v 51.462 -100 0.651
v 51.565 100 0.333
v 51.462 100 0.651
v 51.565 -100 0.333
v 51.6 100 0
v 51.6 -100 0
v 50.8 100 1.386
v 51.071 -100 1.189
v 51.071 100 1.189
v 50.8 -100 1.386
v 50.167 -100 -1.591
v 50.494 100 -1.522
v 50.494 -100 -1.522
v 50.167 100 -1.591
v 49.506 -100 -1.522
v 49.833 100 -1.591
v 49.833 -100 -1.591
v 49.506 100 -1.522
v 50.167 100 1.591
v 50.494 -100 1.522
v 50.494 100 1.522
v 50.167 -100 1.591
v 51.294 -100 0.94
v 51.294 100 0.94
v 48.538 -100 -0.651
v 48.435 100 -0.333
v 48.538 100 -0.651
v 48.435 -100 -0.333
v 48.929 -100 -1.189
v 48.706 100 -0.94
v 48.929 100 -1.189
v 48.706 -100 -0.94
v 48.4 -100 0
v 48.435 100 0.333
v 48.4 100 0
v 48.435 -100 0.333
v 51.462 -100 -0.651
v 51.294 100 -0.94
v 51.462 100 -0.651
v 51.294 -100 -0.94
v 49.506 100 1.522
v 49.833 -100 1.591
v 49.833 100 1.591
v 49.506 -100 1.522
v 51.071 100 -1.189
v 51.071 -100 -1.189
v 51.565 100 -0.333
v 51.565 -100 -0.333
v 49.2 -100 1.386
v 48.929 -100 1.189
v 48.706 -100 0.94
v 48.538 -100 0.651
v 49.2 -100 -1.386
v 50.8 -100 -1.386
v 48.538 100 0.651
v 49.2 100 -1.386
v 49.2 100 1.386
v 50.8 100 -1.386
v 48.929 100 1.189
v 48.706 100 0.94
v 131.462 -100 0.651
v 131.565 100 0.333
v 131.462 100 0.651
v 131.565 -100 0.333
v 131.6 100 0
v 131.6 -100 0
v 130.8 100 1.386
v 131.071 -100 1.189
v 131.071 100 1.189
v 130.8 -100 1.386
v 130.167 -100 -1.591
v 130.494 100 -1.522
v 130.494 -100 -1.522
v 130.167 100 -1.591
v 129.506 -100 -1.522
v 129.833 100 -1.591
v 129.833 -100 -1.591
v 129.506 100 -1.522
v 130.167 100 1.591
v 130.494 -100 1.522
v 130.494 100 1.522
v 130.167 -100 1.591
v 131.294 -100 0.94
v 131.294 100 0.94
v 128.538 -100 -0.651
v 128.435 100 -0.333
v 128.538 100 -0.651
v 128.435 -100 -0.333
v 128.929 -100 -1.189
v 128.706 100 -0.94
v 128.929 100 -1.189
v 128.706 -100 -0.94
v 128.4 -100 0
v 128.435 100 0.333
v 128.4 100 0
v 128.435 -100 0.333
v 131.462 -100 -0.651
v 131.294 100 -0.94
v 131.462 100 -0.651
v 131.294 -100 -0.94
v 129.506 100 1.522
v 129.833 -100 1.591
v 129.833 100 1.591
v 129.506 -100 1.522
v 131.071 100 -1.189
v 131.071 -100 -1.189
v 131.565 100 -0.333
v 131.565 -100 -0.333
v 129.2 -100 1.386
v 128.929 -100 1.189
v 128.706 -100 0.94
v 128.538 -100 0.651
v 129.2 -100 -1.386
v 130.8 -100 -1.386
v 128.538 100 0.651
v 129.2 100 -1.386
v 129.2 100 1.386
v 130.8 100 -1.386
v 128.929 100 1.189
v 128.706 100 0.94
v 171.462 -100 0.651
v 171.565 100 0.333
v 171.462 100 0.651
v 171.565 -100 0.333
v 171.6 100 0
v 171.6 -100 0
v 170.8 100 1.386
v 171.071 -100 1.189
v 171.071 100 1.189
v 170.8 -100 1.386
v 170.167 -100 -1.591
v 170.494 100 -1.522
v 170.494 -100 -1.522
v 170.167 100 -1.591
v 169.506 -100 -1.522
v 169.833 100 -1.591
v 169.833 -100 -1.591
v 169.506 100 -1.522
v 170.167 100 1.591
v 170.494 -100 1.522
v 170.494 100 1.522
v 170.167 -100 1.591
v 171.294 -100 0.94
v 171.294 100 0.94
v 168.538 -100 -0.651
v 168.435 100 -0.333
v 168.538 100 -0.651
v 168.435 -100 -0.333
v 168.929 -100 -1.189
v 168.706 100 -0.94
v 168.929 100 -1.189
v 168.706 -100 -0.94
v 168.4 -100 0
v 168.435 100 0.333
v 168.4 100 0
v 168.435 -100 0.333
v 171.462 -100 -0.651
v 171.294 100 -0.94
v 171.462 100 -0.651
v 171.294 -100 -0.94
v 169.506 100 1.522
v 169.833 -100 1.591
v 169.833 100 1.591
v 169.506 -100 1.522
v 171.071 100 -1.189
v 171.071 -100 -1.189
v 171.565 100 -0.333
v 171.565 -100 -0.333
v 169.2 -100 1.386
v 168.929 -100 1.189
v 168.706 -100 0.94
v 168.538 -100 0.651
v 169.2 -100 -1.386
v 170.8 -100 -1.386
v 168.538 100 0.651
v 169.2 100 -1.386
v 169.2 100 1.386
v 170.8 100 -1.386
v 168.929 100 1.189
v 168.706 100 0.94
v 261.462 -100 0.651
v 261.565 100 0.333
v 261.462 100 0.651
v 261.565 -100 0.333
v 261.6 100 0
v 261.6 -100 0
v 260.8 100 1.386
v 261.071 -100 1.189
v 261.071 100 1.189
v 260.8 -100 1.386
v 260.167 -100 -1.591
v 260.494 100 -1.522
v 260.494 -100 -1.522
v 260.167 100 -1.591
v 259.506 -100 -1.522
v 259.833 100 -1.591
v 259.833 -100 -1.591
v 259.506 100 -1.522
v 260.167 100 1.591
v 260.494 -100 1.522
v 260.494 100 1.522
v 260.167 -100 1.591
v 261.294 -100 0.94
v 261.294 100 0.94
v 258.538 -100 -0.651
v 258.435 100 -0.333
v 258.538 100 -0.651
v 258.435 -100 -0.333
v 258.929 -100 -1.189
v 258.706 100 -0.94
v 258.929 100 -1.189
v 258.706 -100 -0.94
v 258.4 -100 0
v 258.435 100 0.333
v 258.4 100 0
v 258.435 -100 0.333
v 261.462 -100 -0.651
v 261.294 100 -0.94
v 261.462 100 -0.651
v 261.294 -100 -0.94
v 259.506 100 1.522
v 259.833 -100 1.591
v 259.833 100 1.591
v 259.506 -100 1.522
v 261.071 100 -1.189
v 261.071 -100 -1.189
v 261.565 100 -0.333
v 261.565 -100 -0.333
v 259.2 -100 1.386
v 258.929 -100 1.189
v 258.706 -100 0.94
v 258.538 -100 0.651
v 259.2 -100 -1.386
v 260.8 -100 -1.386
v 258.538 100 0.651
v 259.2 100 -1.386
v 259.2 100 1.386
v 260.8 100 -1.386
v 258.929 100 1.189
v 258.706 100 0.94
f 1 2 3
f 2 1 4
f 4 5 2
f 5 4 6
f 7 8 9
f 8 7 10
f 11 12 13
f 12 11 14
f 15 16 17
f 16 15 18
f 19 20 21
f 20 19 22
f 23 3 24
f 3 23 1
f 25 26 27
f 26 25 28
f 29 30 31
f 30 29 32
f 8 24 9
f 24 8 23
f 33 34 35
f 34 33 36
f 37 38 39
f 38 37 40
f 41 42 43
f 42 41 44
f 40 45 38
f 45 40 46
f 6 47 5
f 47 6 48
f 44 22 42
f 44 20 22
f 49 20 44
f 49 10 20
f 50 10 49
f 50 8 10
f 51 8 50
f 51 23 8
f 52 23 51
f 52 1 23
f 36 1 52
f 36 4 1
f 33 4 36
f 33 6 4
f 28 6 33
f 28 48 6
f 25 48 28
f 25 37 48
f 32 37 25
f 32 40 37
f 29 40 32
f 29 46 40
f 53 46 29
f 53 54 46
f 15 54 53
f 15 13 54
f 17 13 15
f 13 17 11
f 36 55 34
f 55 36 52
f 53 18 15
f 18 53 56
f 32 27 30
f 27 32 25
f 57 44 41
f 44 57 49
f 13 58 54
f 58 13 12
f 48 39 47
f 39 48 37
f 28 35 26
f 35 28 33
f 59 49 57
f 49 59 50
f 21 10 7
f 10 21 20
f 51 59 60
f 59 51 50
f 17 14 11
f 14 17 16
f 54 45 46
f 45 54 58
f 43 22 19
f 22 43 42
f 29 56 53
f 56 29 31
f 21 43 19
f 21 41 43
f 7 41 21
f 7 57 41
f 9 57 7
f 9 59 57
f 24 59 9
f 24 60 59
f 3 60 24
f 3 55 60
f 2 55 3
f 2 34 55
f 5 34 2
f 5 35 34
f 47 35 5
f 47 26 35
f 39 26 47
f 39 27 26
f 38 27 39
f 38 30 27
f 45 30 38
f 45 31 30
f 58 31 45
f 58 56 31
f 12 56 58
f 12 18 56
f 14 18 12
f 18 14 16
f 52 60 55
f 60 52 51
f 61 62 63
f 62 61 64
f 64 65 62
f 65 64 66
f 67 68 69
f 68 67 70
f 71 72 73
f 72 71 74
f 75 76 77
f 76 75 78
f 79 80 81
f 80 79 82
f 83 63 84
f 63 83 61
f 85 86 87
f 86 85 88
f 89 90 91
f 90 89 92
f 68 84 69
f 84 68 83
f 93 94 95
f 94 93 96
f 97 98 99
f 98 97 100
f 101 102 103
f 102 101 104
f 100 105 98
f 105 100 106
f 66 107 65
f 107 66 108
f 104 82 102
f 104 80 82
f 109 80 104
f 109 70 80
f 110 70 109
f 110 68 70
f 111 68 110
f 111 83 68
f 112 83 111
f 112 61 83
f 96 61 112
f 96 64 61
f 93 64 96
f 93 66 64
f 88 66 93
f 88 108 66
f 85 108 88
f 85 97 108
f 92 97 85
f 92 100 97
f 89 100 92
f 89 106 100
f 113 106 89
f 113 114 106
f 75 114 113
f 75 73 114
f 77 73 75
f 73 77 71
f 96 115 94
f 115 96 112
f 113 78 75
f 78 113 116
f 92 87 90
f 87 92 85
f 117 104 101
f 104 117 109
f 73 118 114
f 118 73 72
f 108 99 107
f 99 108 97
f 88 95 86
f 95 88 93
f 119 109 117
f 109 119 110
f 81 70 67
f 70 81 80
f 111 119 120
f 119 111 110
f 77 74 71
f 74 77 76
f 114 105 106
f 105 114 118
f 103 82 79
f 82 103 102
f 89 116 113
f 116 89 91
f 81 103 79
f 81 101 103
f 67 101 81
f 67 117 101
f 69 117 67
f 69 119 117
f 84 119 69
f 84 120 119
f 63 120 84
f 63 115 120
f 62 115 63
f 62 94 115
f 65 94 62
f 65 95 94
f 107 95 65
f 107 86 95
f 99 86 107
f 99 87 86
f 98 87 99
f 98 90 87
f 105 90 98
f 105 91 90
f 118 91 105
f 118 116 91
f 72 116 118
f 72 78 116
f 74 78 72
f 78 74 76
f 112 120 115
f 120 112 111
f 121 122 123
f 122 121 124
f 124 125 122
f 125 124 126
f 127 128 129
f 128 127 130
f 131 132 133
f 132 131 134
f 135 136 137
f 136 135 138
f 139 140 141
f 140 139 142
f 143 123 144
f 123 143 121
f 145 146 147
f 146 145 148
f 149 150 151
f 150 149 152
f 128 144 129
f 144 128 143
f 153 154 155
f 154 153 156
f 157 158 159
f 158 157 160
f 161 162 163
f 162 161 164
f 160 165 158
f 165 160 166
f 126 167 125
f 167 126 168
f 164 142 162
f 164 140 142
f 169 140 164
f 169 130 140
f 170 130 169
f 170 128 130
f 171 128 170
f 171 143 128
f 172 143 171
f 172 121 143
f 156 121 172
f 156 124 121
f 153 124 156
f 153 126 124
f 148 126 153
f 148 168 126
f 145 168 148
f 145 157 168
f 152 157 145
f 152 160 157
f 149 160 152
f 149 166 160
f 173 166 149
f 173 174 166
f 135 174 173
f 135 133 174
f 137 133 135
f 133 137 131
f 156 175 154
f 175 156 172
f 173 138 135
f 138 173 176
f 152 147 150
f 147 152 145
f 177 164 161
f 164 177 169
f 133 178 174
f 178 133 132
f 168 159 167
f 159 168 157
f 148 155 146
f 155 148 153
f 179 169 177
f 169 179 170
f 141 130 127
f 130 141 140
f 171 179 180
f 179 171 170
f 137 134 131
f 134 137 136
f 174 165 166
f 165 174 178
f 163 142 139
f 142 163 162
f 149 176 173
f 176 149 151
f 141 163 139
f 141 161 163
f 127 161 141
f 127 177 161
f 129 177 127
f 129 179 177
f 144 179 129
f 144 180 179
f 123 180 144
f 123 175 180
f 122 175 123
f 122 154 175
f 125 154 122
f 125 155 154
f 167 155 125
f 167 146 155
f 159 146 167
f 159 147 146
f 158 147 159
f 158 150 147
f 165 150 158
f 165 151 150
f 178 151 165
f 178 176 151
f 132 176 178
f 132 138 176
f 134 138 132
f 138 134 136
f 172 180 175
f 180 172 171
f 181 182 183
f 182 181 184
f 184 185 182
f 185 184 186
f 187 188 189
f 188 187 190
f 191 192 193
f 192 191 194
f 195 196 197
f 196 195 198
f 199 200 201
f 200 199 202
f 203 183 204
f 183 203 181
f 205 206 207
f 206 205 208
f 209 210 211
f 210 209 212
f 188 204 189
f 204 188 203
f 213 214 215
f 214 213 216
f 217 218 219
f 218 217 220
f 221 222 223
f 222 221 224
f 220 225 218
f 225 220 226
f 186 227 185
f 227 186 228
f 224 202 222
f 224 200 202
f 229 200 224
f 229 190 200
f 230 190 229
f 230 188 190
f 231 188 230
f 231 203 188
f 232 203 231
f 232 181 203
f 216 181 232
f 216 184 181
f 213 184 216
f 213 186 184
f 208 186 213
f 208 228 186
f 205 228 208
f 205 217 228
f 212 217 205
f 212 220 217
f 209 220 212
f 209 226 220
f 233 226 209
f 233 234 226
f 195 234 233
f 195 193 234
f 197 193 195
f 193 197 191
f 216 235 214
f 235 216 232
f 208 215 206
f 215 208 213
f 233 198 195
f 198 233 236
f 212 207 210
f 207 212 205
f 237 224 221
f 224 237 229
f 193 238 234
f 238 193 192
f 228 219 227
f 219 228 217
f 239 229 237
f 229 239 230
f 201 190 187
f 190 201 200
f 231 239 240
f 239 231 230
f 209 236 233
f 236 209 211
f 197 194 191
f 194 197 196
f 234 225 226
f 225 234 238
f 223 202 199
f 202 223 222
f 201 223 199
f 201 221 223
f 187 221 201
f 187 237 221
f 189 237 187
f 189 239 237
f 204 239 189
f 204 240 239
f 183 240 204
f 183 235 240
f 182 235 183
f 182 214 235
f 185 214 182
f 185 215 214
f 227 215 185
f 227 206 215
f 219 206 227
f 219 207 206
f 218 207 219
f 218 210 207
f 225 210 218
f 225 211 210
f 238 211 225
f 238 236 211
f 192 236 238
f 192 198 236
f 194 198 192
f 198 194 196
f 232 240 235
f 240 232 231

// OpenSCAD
// file: ../../888_1016.scad
//@set_slicing_config(slicing/default.ini)
//Priprava na okrytovani

include <../parameters.scad>


module cover_hole(){
  difference(){
    square(5, center = true);
    circle(d=M3_screw_diameter, $fn = 20);
  }
}

module 888_1016(){

  for(x = cover_holes)
    translate([x, 0, 0])
      difference(){
        cube([10, base_width+10, 10], center = true);
        rotate([90, 0, 0])
          cylinder(d = M3_screw_diameter, h = 200, center = true);
        }
}


// modul pro orez blender modelu
module 888_1016_rear_crop(){
  translate([-135 + 155 + 45, 0, 0]) cube([135*2, 100, 200], center = true);
  //translate([135+40+1, base_width/2-4.5, 0]) cube([80, 4, 200], center = true);
  //translate([135+40+1, -base_width/2+4.5, 0]) cube([80, 4, 200], center = true);

}
// modul pro orez blender modelu
module 888_1016_front_crop(){
  translate([150+150, 0, 0]) cube([300, 100, 200], center = true);
  translate([135+40+1, base_width/2-4.5, 0]) cube([60, 5, 200], center = true);
  translate([135+40+1, -base_width/2+4.5, 0]) cube([60, 5, 200], center = true);
}



module 888_1016_rear_holes(){

  for(x = cover_holes)
    translate([x, 0, 0])
        rotate([90, 0, 0])
          cylinder(d = M3_screw_diameter, h = 200, center = true, $fn=30);

}

888_1016();

#888_1016_rear_crop();
// file: ../../../parameters.scad
week = "77";
global_clearance = 0.5;

layer_thickness = 0.3;

base_patern = 10;

//Main tube diameter - hole [mm]
main_tube_outer_diameter = 25.4;
main_tube_inner_diameter = 23.05;

// Nastavení parametrů rotoru

gliding_aggle = 14;         // tenhle úhel by se zřejmě v budoucnu měl počítat z požadované klouzavosti.

rotor_blade_AOA = 1.5;      // nastavení úhlu náběhu rotorového listu

// Rotor Auto-G2
rotor_blade_rod = true;  // generovat diru pro uhlikove tycky
rotor_blade_length = 500;   // délka rotorového listu
// rotor_blade_length = 450 - 15;   // délka rotorového listu -- nastaveni prvniho vytisku
//rotor_blade_length = 460;   // délka rotorového listu
rotor_blade_depth = 45.5+2;     // hloubka rotorového listu
rotor_balde_tip_cutoff = 15.5;


blade_mount_length = 30;

blade_mount_width = 17;
blade_mount_thickness = 4.6;
blade_mount_screw_offset = 5; // distance of first screw from rotor end

// Testovaci maly rotor

        /*
        rotor_blade_rod = false;
        rotor_blade_length = 145;   // délka rotorového listu
        rotor_blade_depth = 45.5 * (145/385);     // hloubka rotorového listu
        blade_mount_length = 20;
        blade_mount_width = 10;
        blade_mount_thickness = 4;
        */

// konec parametru pro testovaci maly rotor

rotor_height = 180;         // výška otočného kloubu rotoru nad hlavní trubkou vírníku (odhad)
rotor_blades_count = 2;
rotor_delta_angle = 12;
rotor_blade_thickness = 5.1;
//rotor_balde_tip_cutoff = 10;

rotor_blade_naca = 2412;
rotor_blade_parts_count = 4;
//rotor_blade_parts_count = 3;

blade_transition_length = 10; // length of blade transition

blade_mount_screw_distance = (16.47+11.86)/2;

rod_from_end = 10;

/* blade_shell_thickness = 0.4;
blade_shell_thickness_inner = 0.4;
blade_shell_thickness_wire = 0.4;
blade_infill_distance = 25;
blade_infill_overlap = 0; */

/// Nastaveni pro Slic3r
blade_shell_thickness = 0.45;
blade_shell_thickness_inner = 0.2;
blade_shell_thickness_wire = 0.45;
blade_infill_distance = 23;
blade_infill_overlap = 0;


//blade_rod_position = [rotor_blade_depth/4 + 5, 0, 0];
//blade_rod_position2 = [rotor_blade_depth/4 - 5, 0, 0];

//blade_rod_position = [15, 0, 0];
//blade_rod_position2 = [4, 0.3, 0];

//blade_rod1_diameter = 2.58;
//blade_rod2_diameter = 2.58;
//blade_rod3_diameter = 2.13;
blade_rod1_diameter = 2.4;
blade_rod2_diameter = 2.4;
blade_rod3_diameter = 2.4;

// blade_rod1_position = [3.4, 0.3, 0];
blade_rod1_position = [rotor_blade_depth/4 - 8.7, 0.2, 0];
blade_rod2_position = [rotor_blade_depth/4 - 5.8, 0.5, 0];
blade_rod3_position = [rotor_blade_depth/4 + 3.5, 0.5, 0];


blade_glue_holes = 0;

rotor_blade_endtip_diameter = 20;

rotor_blade_part_list = [0, 50, 200, 350, 500];

// vzdalenosti der pro kryty
cover_holes = [base_patern*5, base_patern*13, base_patern*17, base_patern*26];



rotor_head_width =  30;    //Rozměr 1 v nákresu
pylon_wall_thickness = 4.2;  // Rozměr 2 v nákresu
horizontal_screw_distance = 14.5;   // Rozměr 4 v nákresu
vertical_screw_distance = 12;       // rozměr 5 v nkresu
topscrew_distance_endofpylon = 5;

rotorhead_wall_thickness = 3; // sila tistenych dilu


bearing_outer_diameter = 10.2;    // Rozměr B1 v nákresu s přídavkem na toleranci otvoru
bearing_thickness = 4;        // Rozměr B2 v nákresu
//bearing_shaft_length = 19.5;    // Rozměr B3 v nákresu, Originalni hodnota 19.5
bearing_shaft_length = 20;    // Rozměr B3 v nákresu


// nastavení parametrů motoru

engine_angle = -8;
engine_diameter = 55;
engine_offset = 55;

engine_screws_radius = 15;
engine_holes_radius = (24 + 44)/4;
engine_shatf_hole_diameter = 13;

// screw length step - minimum difference in length between two types of screws
basic_screw_length = 5;

//Screw diameter and nut for M6 [mm]
M6_screw_diameter=6.5;
M6_head_diameter = 10+0.5;
M6_head_height = 6;
M6_nut_height = 4.9;
M6_nut_diameter = 11.8;
M6_nut_pocket = 10.4;

//Screw diameter and nut for M5 [mm]
M5_screw_diameter=5.5;
M5_head_height = 5;
M5_head_diameter = 13+0.5;
M5_nut_height = 4.5;
M5_nut_diameter = 9.4;
M5_nut_pocket = 8.4;

//Screw diameter and nut for M4 [mm]
M4_screw_diameter=4.5;
M4_screw_head_height = 4;
M4_nut_height = 3.2;
M4_nut_diameter = 8.4;
M4_nut_pocket = 7.5;

//Screw diameter and nut for M3 [mm]
M3_screw_diameter = 3.2;
M3_nut_height = 2.7;
M3_nut_diameter = 6.6;
M3_screw_head_height = 3;
M3_nut_pocket = 5.6;


//Screw diameter and nut for M2,5 [mm]
M2_5_screw_diameter = 2.7;
M2_5_nut_height = 2.3;
M2_5_nut_diameter = 6;
M2_5_nut_pocket = 5.1;

//Screw diameter and nut for M2 [mm]
M2_screw_diameter = 2.0;
M2_nut_height = 1.8;
M2_nut_diameter = 4.8;
M2_nut_pocket = 3.95;


blade_mount_screw = M3_screw_diameter;
blade_mount_nut = M3_nut_diameter;


//šroub servo
Servo_screw = 1.5;
Servo_nut_height = 1;
Servo_nut_diameter = 2.7;

tail_pipes_distance = 10.16*5;
tail_pipes_diameter = M4_screw_diameter;
tail_pipes_min_wall = 3;

elevator_pitch = 2;


/// ruder parametry

rudder_height = 150;
height_bottom_part = 130;
rudder_depth_max = 200;

below_rudder_height = 30;
rudder_depth = 60;

tail_airfoil_n = 80;




//center_of_gravity_position = [main_pylon_position - tan(gliding_aggle)*rotor_height, 0, 0];


////podzvozek

radius_undercarriage = 25;
vzdalenost_x = tan(20) * 131;
vzdalenost_y = (131 - radius_undercarriage)/tan(79);
uhel_y = 90 - 20;
uhel_x = 90 - 79;

maximum_printable_size = 150;


////Pitotova trubice
Pitot_tube_diameter = 4.02 + 1;
Distance_hole_from_tube = 11.92;  //vzdálenost otvoru pro připevnění od samotné trubičky


////Vlečné zařízení
tow_ring_diameter = 20;
tow_ring_thickness = 5;
tow_ring_groove = 2;
tow_ring_hole_diameter = M3_screw_diameter;

////Simoniny parametry pro nosník rotoru
base_length = 290; //delka podlozky
base_split_position = [0, 290/2, base_length];
base_width = 70; //sirka podlozky - vnější šířka nosníku
base_thickness = 3; //vyska podlozky
rantl_thickness = 3; //sirka steny podlozky
rantl_height = 6.5;
niy=4; //pocet der podelne


// Drazak motoru

motor_holder_height = base_patern * 5;
motor_holder_thickness = 3.5;
motor_holder_motor_height = 25;
motor_holder_side_mount_height = base_patern*2.5;
pylon_holder_side_mount_height = base_patern*4.5;


// Paraetry pylonu


// pylon_height = 250 - pylon_holder_side_mount_height;
pylon_height = 180 + 50 - pylon_holder_side_mount_height;
pilot_height_separation = 120 + 30 - pylon_holder_side_mount_height;
pylon_thickness = 3;
pylon_beam_width = 10;
pylon_base_length = 60;
pylon_ring_length = 40;
pylon_ring_thickness = 3;

pylon_top_width = 20;
pylon_top_length = 20;

pylon_ring_width = 45;
pylon_ring_height_rantl = 12+0.5;
pylon_ring_height = 3;

pylon_angle = atan2(pylon_height,(base_width-pylon_top_width)/2);
echo(pylon_angle);

pylon_bottom_angle = atan2(pilot_height_separation,(base_width-pylon_ring_width)/2-pylon_thickness*1.5);
echo(pylon_bottom_angle);
pylon_top_angle = atan2(pylon_height - pilot_height_separation,(pylon_ring_width - rotor_head_width)/2 - pylon_thickness - pylon_ring_thickness);
echo(pylon_top_angle);
// main file
//@set_slicing_config(../../slicing/default.ini)

//dil pro pripevneni tazneho motoru
include <../../../parameters.scad>
use <../../888_1016.scad>

888_1016_rear_holes();
